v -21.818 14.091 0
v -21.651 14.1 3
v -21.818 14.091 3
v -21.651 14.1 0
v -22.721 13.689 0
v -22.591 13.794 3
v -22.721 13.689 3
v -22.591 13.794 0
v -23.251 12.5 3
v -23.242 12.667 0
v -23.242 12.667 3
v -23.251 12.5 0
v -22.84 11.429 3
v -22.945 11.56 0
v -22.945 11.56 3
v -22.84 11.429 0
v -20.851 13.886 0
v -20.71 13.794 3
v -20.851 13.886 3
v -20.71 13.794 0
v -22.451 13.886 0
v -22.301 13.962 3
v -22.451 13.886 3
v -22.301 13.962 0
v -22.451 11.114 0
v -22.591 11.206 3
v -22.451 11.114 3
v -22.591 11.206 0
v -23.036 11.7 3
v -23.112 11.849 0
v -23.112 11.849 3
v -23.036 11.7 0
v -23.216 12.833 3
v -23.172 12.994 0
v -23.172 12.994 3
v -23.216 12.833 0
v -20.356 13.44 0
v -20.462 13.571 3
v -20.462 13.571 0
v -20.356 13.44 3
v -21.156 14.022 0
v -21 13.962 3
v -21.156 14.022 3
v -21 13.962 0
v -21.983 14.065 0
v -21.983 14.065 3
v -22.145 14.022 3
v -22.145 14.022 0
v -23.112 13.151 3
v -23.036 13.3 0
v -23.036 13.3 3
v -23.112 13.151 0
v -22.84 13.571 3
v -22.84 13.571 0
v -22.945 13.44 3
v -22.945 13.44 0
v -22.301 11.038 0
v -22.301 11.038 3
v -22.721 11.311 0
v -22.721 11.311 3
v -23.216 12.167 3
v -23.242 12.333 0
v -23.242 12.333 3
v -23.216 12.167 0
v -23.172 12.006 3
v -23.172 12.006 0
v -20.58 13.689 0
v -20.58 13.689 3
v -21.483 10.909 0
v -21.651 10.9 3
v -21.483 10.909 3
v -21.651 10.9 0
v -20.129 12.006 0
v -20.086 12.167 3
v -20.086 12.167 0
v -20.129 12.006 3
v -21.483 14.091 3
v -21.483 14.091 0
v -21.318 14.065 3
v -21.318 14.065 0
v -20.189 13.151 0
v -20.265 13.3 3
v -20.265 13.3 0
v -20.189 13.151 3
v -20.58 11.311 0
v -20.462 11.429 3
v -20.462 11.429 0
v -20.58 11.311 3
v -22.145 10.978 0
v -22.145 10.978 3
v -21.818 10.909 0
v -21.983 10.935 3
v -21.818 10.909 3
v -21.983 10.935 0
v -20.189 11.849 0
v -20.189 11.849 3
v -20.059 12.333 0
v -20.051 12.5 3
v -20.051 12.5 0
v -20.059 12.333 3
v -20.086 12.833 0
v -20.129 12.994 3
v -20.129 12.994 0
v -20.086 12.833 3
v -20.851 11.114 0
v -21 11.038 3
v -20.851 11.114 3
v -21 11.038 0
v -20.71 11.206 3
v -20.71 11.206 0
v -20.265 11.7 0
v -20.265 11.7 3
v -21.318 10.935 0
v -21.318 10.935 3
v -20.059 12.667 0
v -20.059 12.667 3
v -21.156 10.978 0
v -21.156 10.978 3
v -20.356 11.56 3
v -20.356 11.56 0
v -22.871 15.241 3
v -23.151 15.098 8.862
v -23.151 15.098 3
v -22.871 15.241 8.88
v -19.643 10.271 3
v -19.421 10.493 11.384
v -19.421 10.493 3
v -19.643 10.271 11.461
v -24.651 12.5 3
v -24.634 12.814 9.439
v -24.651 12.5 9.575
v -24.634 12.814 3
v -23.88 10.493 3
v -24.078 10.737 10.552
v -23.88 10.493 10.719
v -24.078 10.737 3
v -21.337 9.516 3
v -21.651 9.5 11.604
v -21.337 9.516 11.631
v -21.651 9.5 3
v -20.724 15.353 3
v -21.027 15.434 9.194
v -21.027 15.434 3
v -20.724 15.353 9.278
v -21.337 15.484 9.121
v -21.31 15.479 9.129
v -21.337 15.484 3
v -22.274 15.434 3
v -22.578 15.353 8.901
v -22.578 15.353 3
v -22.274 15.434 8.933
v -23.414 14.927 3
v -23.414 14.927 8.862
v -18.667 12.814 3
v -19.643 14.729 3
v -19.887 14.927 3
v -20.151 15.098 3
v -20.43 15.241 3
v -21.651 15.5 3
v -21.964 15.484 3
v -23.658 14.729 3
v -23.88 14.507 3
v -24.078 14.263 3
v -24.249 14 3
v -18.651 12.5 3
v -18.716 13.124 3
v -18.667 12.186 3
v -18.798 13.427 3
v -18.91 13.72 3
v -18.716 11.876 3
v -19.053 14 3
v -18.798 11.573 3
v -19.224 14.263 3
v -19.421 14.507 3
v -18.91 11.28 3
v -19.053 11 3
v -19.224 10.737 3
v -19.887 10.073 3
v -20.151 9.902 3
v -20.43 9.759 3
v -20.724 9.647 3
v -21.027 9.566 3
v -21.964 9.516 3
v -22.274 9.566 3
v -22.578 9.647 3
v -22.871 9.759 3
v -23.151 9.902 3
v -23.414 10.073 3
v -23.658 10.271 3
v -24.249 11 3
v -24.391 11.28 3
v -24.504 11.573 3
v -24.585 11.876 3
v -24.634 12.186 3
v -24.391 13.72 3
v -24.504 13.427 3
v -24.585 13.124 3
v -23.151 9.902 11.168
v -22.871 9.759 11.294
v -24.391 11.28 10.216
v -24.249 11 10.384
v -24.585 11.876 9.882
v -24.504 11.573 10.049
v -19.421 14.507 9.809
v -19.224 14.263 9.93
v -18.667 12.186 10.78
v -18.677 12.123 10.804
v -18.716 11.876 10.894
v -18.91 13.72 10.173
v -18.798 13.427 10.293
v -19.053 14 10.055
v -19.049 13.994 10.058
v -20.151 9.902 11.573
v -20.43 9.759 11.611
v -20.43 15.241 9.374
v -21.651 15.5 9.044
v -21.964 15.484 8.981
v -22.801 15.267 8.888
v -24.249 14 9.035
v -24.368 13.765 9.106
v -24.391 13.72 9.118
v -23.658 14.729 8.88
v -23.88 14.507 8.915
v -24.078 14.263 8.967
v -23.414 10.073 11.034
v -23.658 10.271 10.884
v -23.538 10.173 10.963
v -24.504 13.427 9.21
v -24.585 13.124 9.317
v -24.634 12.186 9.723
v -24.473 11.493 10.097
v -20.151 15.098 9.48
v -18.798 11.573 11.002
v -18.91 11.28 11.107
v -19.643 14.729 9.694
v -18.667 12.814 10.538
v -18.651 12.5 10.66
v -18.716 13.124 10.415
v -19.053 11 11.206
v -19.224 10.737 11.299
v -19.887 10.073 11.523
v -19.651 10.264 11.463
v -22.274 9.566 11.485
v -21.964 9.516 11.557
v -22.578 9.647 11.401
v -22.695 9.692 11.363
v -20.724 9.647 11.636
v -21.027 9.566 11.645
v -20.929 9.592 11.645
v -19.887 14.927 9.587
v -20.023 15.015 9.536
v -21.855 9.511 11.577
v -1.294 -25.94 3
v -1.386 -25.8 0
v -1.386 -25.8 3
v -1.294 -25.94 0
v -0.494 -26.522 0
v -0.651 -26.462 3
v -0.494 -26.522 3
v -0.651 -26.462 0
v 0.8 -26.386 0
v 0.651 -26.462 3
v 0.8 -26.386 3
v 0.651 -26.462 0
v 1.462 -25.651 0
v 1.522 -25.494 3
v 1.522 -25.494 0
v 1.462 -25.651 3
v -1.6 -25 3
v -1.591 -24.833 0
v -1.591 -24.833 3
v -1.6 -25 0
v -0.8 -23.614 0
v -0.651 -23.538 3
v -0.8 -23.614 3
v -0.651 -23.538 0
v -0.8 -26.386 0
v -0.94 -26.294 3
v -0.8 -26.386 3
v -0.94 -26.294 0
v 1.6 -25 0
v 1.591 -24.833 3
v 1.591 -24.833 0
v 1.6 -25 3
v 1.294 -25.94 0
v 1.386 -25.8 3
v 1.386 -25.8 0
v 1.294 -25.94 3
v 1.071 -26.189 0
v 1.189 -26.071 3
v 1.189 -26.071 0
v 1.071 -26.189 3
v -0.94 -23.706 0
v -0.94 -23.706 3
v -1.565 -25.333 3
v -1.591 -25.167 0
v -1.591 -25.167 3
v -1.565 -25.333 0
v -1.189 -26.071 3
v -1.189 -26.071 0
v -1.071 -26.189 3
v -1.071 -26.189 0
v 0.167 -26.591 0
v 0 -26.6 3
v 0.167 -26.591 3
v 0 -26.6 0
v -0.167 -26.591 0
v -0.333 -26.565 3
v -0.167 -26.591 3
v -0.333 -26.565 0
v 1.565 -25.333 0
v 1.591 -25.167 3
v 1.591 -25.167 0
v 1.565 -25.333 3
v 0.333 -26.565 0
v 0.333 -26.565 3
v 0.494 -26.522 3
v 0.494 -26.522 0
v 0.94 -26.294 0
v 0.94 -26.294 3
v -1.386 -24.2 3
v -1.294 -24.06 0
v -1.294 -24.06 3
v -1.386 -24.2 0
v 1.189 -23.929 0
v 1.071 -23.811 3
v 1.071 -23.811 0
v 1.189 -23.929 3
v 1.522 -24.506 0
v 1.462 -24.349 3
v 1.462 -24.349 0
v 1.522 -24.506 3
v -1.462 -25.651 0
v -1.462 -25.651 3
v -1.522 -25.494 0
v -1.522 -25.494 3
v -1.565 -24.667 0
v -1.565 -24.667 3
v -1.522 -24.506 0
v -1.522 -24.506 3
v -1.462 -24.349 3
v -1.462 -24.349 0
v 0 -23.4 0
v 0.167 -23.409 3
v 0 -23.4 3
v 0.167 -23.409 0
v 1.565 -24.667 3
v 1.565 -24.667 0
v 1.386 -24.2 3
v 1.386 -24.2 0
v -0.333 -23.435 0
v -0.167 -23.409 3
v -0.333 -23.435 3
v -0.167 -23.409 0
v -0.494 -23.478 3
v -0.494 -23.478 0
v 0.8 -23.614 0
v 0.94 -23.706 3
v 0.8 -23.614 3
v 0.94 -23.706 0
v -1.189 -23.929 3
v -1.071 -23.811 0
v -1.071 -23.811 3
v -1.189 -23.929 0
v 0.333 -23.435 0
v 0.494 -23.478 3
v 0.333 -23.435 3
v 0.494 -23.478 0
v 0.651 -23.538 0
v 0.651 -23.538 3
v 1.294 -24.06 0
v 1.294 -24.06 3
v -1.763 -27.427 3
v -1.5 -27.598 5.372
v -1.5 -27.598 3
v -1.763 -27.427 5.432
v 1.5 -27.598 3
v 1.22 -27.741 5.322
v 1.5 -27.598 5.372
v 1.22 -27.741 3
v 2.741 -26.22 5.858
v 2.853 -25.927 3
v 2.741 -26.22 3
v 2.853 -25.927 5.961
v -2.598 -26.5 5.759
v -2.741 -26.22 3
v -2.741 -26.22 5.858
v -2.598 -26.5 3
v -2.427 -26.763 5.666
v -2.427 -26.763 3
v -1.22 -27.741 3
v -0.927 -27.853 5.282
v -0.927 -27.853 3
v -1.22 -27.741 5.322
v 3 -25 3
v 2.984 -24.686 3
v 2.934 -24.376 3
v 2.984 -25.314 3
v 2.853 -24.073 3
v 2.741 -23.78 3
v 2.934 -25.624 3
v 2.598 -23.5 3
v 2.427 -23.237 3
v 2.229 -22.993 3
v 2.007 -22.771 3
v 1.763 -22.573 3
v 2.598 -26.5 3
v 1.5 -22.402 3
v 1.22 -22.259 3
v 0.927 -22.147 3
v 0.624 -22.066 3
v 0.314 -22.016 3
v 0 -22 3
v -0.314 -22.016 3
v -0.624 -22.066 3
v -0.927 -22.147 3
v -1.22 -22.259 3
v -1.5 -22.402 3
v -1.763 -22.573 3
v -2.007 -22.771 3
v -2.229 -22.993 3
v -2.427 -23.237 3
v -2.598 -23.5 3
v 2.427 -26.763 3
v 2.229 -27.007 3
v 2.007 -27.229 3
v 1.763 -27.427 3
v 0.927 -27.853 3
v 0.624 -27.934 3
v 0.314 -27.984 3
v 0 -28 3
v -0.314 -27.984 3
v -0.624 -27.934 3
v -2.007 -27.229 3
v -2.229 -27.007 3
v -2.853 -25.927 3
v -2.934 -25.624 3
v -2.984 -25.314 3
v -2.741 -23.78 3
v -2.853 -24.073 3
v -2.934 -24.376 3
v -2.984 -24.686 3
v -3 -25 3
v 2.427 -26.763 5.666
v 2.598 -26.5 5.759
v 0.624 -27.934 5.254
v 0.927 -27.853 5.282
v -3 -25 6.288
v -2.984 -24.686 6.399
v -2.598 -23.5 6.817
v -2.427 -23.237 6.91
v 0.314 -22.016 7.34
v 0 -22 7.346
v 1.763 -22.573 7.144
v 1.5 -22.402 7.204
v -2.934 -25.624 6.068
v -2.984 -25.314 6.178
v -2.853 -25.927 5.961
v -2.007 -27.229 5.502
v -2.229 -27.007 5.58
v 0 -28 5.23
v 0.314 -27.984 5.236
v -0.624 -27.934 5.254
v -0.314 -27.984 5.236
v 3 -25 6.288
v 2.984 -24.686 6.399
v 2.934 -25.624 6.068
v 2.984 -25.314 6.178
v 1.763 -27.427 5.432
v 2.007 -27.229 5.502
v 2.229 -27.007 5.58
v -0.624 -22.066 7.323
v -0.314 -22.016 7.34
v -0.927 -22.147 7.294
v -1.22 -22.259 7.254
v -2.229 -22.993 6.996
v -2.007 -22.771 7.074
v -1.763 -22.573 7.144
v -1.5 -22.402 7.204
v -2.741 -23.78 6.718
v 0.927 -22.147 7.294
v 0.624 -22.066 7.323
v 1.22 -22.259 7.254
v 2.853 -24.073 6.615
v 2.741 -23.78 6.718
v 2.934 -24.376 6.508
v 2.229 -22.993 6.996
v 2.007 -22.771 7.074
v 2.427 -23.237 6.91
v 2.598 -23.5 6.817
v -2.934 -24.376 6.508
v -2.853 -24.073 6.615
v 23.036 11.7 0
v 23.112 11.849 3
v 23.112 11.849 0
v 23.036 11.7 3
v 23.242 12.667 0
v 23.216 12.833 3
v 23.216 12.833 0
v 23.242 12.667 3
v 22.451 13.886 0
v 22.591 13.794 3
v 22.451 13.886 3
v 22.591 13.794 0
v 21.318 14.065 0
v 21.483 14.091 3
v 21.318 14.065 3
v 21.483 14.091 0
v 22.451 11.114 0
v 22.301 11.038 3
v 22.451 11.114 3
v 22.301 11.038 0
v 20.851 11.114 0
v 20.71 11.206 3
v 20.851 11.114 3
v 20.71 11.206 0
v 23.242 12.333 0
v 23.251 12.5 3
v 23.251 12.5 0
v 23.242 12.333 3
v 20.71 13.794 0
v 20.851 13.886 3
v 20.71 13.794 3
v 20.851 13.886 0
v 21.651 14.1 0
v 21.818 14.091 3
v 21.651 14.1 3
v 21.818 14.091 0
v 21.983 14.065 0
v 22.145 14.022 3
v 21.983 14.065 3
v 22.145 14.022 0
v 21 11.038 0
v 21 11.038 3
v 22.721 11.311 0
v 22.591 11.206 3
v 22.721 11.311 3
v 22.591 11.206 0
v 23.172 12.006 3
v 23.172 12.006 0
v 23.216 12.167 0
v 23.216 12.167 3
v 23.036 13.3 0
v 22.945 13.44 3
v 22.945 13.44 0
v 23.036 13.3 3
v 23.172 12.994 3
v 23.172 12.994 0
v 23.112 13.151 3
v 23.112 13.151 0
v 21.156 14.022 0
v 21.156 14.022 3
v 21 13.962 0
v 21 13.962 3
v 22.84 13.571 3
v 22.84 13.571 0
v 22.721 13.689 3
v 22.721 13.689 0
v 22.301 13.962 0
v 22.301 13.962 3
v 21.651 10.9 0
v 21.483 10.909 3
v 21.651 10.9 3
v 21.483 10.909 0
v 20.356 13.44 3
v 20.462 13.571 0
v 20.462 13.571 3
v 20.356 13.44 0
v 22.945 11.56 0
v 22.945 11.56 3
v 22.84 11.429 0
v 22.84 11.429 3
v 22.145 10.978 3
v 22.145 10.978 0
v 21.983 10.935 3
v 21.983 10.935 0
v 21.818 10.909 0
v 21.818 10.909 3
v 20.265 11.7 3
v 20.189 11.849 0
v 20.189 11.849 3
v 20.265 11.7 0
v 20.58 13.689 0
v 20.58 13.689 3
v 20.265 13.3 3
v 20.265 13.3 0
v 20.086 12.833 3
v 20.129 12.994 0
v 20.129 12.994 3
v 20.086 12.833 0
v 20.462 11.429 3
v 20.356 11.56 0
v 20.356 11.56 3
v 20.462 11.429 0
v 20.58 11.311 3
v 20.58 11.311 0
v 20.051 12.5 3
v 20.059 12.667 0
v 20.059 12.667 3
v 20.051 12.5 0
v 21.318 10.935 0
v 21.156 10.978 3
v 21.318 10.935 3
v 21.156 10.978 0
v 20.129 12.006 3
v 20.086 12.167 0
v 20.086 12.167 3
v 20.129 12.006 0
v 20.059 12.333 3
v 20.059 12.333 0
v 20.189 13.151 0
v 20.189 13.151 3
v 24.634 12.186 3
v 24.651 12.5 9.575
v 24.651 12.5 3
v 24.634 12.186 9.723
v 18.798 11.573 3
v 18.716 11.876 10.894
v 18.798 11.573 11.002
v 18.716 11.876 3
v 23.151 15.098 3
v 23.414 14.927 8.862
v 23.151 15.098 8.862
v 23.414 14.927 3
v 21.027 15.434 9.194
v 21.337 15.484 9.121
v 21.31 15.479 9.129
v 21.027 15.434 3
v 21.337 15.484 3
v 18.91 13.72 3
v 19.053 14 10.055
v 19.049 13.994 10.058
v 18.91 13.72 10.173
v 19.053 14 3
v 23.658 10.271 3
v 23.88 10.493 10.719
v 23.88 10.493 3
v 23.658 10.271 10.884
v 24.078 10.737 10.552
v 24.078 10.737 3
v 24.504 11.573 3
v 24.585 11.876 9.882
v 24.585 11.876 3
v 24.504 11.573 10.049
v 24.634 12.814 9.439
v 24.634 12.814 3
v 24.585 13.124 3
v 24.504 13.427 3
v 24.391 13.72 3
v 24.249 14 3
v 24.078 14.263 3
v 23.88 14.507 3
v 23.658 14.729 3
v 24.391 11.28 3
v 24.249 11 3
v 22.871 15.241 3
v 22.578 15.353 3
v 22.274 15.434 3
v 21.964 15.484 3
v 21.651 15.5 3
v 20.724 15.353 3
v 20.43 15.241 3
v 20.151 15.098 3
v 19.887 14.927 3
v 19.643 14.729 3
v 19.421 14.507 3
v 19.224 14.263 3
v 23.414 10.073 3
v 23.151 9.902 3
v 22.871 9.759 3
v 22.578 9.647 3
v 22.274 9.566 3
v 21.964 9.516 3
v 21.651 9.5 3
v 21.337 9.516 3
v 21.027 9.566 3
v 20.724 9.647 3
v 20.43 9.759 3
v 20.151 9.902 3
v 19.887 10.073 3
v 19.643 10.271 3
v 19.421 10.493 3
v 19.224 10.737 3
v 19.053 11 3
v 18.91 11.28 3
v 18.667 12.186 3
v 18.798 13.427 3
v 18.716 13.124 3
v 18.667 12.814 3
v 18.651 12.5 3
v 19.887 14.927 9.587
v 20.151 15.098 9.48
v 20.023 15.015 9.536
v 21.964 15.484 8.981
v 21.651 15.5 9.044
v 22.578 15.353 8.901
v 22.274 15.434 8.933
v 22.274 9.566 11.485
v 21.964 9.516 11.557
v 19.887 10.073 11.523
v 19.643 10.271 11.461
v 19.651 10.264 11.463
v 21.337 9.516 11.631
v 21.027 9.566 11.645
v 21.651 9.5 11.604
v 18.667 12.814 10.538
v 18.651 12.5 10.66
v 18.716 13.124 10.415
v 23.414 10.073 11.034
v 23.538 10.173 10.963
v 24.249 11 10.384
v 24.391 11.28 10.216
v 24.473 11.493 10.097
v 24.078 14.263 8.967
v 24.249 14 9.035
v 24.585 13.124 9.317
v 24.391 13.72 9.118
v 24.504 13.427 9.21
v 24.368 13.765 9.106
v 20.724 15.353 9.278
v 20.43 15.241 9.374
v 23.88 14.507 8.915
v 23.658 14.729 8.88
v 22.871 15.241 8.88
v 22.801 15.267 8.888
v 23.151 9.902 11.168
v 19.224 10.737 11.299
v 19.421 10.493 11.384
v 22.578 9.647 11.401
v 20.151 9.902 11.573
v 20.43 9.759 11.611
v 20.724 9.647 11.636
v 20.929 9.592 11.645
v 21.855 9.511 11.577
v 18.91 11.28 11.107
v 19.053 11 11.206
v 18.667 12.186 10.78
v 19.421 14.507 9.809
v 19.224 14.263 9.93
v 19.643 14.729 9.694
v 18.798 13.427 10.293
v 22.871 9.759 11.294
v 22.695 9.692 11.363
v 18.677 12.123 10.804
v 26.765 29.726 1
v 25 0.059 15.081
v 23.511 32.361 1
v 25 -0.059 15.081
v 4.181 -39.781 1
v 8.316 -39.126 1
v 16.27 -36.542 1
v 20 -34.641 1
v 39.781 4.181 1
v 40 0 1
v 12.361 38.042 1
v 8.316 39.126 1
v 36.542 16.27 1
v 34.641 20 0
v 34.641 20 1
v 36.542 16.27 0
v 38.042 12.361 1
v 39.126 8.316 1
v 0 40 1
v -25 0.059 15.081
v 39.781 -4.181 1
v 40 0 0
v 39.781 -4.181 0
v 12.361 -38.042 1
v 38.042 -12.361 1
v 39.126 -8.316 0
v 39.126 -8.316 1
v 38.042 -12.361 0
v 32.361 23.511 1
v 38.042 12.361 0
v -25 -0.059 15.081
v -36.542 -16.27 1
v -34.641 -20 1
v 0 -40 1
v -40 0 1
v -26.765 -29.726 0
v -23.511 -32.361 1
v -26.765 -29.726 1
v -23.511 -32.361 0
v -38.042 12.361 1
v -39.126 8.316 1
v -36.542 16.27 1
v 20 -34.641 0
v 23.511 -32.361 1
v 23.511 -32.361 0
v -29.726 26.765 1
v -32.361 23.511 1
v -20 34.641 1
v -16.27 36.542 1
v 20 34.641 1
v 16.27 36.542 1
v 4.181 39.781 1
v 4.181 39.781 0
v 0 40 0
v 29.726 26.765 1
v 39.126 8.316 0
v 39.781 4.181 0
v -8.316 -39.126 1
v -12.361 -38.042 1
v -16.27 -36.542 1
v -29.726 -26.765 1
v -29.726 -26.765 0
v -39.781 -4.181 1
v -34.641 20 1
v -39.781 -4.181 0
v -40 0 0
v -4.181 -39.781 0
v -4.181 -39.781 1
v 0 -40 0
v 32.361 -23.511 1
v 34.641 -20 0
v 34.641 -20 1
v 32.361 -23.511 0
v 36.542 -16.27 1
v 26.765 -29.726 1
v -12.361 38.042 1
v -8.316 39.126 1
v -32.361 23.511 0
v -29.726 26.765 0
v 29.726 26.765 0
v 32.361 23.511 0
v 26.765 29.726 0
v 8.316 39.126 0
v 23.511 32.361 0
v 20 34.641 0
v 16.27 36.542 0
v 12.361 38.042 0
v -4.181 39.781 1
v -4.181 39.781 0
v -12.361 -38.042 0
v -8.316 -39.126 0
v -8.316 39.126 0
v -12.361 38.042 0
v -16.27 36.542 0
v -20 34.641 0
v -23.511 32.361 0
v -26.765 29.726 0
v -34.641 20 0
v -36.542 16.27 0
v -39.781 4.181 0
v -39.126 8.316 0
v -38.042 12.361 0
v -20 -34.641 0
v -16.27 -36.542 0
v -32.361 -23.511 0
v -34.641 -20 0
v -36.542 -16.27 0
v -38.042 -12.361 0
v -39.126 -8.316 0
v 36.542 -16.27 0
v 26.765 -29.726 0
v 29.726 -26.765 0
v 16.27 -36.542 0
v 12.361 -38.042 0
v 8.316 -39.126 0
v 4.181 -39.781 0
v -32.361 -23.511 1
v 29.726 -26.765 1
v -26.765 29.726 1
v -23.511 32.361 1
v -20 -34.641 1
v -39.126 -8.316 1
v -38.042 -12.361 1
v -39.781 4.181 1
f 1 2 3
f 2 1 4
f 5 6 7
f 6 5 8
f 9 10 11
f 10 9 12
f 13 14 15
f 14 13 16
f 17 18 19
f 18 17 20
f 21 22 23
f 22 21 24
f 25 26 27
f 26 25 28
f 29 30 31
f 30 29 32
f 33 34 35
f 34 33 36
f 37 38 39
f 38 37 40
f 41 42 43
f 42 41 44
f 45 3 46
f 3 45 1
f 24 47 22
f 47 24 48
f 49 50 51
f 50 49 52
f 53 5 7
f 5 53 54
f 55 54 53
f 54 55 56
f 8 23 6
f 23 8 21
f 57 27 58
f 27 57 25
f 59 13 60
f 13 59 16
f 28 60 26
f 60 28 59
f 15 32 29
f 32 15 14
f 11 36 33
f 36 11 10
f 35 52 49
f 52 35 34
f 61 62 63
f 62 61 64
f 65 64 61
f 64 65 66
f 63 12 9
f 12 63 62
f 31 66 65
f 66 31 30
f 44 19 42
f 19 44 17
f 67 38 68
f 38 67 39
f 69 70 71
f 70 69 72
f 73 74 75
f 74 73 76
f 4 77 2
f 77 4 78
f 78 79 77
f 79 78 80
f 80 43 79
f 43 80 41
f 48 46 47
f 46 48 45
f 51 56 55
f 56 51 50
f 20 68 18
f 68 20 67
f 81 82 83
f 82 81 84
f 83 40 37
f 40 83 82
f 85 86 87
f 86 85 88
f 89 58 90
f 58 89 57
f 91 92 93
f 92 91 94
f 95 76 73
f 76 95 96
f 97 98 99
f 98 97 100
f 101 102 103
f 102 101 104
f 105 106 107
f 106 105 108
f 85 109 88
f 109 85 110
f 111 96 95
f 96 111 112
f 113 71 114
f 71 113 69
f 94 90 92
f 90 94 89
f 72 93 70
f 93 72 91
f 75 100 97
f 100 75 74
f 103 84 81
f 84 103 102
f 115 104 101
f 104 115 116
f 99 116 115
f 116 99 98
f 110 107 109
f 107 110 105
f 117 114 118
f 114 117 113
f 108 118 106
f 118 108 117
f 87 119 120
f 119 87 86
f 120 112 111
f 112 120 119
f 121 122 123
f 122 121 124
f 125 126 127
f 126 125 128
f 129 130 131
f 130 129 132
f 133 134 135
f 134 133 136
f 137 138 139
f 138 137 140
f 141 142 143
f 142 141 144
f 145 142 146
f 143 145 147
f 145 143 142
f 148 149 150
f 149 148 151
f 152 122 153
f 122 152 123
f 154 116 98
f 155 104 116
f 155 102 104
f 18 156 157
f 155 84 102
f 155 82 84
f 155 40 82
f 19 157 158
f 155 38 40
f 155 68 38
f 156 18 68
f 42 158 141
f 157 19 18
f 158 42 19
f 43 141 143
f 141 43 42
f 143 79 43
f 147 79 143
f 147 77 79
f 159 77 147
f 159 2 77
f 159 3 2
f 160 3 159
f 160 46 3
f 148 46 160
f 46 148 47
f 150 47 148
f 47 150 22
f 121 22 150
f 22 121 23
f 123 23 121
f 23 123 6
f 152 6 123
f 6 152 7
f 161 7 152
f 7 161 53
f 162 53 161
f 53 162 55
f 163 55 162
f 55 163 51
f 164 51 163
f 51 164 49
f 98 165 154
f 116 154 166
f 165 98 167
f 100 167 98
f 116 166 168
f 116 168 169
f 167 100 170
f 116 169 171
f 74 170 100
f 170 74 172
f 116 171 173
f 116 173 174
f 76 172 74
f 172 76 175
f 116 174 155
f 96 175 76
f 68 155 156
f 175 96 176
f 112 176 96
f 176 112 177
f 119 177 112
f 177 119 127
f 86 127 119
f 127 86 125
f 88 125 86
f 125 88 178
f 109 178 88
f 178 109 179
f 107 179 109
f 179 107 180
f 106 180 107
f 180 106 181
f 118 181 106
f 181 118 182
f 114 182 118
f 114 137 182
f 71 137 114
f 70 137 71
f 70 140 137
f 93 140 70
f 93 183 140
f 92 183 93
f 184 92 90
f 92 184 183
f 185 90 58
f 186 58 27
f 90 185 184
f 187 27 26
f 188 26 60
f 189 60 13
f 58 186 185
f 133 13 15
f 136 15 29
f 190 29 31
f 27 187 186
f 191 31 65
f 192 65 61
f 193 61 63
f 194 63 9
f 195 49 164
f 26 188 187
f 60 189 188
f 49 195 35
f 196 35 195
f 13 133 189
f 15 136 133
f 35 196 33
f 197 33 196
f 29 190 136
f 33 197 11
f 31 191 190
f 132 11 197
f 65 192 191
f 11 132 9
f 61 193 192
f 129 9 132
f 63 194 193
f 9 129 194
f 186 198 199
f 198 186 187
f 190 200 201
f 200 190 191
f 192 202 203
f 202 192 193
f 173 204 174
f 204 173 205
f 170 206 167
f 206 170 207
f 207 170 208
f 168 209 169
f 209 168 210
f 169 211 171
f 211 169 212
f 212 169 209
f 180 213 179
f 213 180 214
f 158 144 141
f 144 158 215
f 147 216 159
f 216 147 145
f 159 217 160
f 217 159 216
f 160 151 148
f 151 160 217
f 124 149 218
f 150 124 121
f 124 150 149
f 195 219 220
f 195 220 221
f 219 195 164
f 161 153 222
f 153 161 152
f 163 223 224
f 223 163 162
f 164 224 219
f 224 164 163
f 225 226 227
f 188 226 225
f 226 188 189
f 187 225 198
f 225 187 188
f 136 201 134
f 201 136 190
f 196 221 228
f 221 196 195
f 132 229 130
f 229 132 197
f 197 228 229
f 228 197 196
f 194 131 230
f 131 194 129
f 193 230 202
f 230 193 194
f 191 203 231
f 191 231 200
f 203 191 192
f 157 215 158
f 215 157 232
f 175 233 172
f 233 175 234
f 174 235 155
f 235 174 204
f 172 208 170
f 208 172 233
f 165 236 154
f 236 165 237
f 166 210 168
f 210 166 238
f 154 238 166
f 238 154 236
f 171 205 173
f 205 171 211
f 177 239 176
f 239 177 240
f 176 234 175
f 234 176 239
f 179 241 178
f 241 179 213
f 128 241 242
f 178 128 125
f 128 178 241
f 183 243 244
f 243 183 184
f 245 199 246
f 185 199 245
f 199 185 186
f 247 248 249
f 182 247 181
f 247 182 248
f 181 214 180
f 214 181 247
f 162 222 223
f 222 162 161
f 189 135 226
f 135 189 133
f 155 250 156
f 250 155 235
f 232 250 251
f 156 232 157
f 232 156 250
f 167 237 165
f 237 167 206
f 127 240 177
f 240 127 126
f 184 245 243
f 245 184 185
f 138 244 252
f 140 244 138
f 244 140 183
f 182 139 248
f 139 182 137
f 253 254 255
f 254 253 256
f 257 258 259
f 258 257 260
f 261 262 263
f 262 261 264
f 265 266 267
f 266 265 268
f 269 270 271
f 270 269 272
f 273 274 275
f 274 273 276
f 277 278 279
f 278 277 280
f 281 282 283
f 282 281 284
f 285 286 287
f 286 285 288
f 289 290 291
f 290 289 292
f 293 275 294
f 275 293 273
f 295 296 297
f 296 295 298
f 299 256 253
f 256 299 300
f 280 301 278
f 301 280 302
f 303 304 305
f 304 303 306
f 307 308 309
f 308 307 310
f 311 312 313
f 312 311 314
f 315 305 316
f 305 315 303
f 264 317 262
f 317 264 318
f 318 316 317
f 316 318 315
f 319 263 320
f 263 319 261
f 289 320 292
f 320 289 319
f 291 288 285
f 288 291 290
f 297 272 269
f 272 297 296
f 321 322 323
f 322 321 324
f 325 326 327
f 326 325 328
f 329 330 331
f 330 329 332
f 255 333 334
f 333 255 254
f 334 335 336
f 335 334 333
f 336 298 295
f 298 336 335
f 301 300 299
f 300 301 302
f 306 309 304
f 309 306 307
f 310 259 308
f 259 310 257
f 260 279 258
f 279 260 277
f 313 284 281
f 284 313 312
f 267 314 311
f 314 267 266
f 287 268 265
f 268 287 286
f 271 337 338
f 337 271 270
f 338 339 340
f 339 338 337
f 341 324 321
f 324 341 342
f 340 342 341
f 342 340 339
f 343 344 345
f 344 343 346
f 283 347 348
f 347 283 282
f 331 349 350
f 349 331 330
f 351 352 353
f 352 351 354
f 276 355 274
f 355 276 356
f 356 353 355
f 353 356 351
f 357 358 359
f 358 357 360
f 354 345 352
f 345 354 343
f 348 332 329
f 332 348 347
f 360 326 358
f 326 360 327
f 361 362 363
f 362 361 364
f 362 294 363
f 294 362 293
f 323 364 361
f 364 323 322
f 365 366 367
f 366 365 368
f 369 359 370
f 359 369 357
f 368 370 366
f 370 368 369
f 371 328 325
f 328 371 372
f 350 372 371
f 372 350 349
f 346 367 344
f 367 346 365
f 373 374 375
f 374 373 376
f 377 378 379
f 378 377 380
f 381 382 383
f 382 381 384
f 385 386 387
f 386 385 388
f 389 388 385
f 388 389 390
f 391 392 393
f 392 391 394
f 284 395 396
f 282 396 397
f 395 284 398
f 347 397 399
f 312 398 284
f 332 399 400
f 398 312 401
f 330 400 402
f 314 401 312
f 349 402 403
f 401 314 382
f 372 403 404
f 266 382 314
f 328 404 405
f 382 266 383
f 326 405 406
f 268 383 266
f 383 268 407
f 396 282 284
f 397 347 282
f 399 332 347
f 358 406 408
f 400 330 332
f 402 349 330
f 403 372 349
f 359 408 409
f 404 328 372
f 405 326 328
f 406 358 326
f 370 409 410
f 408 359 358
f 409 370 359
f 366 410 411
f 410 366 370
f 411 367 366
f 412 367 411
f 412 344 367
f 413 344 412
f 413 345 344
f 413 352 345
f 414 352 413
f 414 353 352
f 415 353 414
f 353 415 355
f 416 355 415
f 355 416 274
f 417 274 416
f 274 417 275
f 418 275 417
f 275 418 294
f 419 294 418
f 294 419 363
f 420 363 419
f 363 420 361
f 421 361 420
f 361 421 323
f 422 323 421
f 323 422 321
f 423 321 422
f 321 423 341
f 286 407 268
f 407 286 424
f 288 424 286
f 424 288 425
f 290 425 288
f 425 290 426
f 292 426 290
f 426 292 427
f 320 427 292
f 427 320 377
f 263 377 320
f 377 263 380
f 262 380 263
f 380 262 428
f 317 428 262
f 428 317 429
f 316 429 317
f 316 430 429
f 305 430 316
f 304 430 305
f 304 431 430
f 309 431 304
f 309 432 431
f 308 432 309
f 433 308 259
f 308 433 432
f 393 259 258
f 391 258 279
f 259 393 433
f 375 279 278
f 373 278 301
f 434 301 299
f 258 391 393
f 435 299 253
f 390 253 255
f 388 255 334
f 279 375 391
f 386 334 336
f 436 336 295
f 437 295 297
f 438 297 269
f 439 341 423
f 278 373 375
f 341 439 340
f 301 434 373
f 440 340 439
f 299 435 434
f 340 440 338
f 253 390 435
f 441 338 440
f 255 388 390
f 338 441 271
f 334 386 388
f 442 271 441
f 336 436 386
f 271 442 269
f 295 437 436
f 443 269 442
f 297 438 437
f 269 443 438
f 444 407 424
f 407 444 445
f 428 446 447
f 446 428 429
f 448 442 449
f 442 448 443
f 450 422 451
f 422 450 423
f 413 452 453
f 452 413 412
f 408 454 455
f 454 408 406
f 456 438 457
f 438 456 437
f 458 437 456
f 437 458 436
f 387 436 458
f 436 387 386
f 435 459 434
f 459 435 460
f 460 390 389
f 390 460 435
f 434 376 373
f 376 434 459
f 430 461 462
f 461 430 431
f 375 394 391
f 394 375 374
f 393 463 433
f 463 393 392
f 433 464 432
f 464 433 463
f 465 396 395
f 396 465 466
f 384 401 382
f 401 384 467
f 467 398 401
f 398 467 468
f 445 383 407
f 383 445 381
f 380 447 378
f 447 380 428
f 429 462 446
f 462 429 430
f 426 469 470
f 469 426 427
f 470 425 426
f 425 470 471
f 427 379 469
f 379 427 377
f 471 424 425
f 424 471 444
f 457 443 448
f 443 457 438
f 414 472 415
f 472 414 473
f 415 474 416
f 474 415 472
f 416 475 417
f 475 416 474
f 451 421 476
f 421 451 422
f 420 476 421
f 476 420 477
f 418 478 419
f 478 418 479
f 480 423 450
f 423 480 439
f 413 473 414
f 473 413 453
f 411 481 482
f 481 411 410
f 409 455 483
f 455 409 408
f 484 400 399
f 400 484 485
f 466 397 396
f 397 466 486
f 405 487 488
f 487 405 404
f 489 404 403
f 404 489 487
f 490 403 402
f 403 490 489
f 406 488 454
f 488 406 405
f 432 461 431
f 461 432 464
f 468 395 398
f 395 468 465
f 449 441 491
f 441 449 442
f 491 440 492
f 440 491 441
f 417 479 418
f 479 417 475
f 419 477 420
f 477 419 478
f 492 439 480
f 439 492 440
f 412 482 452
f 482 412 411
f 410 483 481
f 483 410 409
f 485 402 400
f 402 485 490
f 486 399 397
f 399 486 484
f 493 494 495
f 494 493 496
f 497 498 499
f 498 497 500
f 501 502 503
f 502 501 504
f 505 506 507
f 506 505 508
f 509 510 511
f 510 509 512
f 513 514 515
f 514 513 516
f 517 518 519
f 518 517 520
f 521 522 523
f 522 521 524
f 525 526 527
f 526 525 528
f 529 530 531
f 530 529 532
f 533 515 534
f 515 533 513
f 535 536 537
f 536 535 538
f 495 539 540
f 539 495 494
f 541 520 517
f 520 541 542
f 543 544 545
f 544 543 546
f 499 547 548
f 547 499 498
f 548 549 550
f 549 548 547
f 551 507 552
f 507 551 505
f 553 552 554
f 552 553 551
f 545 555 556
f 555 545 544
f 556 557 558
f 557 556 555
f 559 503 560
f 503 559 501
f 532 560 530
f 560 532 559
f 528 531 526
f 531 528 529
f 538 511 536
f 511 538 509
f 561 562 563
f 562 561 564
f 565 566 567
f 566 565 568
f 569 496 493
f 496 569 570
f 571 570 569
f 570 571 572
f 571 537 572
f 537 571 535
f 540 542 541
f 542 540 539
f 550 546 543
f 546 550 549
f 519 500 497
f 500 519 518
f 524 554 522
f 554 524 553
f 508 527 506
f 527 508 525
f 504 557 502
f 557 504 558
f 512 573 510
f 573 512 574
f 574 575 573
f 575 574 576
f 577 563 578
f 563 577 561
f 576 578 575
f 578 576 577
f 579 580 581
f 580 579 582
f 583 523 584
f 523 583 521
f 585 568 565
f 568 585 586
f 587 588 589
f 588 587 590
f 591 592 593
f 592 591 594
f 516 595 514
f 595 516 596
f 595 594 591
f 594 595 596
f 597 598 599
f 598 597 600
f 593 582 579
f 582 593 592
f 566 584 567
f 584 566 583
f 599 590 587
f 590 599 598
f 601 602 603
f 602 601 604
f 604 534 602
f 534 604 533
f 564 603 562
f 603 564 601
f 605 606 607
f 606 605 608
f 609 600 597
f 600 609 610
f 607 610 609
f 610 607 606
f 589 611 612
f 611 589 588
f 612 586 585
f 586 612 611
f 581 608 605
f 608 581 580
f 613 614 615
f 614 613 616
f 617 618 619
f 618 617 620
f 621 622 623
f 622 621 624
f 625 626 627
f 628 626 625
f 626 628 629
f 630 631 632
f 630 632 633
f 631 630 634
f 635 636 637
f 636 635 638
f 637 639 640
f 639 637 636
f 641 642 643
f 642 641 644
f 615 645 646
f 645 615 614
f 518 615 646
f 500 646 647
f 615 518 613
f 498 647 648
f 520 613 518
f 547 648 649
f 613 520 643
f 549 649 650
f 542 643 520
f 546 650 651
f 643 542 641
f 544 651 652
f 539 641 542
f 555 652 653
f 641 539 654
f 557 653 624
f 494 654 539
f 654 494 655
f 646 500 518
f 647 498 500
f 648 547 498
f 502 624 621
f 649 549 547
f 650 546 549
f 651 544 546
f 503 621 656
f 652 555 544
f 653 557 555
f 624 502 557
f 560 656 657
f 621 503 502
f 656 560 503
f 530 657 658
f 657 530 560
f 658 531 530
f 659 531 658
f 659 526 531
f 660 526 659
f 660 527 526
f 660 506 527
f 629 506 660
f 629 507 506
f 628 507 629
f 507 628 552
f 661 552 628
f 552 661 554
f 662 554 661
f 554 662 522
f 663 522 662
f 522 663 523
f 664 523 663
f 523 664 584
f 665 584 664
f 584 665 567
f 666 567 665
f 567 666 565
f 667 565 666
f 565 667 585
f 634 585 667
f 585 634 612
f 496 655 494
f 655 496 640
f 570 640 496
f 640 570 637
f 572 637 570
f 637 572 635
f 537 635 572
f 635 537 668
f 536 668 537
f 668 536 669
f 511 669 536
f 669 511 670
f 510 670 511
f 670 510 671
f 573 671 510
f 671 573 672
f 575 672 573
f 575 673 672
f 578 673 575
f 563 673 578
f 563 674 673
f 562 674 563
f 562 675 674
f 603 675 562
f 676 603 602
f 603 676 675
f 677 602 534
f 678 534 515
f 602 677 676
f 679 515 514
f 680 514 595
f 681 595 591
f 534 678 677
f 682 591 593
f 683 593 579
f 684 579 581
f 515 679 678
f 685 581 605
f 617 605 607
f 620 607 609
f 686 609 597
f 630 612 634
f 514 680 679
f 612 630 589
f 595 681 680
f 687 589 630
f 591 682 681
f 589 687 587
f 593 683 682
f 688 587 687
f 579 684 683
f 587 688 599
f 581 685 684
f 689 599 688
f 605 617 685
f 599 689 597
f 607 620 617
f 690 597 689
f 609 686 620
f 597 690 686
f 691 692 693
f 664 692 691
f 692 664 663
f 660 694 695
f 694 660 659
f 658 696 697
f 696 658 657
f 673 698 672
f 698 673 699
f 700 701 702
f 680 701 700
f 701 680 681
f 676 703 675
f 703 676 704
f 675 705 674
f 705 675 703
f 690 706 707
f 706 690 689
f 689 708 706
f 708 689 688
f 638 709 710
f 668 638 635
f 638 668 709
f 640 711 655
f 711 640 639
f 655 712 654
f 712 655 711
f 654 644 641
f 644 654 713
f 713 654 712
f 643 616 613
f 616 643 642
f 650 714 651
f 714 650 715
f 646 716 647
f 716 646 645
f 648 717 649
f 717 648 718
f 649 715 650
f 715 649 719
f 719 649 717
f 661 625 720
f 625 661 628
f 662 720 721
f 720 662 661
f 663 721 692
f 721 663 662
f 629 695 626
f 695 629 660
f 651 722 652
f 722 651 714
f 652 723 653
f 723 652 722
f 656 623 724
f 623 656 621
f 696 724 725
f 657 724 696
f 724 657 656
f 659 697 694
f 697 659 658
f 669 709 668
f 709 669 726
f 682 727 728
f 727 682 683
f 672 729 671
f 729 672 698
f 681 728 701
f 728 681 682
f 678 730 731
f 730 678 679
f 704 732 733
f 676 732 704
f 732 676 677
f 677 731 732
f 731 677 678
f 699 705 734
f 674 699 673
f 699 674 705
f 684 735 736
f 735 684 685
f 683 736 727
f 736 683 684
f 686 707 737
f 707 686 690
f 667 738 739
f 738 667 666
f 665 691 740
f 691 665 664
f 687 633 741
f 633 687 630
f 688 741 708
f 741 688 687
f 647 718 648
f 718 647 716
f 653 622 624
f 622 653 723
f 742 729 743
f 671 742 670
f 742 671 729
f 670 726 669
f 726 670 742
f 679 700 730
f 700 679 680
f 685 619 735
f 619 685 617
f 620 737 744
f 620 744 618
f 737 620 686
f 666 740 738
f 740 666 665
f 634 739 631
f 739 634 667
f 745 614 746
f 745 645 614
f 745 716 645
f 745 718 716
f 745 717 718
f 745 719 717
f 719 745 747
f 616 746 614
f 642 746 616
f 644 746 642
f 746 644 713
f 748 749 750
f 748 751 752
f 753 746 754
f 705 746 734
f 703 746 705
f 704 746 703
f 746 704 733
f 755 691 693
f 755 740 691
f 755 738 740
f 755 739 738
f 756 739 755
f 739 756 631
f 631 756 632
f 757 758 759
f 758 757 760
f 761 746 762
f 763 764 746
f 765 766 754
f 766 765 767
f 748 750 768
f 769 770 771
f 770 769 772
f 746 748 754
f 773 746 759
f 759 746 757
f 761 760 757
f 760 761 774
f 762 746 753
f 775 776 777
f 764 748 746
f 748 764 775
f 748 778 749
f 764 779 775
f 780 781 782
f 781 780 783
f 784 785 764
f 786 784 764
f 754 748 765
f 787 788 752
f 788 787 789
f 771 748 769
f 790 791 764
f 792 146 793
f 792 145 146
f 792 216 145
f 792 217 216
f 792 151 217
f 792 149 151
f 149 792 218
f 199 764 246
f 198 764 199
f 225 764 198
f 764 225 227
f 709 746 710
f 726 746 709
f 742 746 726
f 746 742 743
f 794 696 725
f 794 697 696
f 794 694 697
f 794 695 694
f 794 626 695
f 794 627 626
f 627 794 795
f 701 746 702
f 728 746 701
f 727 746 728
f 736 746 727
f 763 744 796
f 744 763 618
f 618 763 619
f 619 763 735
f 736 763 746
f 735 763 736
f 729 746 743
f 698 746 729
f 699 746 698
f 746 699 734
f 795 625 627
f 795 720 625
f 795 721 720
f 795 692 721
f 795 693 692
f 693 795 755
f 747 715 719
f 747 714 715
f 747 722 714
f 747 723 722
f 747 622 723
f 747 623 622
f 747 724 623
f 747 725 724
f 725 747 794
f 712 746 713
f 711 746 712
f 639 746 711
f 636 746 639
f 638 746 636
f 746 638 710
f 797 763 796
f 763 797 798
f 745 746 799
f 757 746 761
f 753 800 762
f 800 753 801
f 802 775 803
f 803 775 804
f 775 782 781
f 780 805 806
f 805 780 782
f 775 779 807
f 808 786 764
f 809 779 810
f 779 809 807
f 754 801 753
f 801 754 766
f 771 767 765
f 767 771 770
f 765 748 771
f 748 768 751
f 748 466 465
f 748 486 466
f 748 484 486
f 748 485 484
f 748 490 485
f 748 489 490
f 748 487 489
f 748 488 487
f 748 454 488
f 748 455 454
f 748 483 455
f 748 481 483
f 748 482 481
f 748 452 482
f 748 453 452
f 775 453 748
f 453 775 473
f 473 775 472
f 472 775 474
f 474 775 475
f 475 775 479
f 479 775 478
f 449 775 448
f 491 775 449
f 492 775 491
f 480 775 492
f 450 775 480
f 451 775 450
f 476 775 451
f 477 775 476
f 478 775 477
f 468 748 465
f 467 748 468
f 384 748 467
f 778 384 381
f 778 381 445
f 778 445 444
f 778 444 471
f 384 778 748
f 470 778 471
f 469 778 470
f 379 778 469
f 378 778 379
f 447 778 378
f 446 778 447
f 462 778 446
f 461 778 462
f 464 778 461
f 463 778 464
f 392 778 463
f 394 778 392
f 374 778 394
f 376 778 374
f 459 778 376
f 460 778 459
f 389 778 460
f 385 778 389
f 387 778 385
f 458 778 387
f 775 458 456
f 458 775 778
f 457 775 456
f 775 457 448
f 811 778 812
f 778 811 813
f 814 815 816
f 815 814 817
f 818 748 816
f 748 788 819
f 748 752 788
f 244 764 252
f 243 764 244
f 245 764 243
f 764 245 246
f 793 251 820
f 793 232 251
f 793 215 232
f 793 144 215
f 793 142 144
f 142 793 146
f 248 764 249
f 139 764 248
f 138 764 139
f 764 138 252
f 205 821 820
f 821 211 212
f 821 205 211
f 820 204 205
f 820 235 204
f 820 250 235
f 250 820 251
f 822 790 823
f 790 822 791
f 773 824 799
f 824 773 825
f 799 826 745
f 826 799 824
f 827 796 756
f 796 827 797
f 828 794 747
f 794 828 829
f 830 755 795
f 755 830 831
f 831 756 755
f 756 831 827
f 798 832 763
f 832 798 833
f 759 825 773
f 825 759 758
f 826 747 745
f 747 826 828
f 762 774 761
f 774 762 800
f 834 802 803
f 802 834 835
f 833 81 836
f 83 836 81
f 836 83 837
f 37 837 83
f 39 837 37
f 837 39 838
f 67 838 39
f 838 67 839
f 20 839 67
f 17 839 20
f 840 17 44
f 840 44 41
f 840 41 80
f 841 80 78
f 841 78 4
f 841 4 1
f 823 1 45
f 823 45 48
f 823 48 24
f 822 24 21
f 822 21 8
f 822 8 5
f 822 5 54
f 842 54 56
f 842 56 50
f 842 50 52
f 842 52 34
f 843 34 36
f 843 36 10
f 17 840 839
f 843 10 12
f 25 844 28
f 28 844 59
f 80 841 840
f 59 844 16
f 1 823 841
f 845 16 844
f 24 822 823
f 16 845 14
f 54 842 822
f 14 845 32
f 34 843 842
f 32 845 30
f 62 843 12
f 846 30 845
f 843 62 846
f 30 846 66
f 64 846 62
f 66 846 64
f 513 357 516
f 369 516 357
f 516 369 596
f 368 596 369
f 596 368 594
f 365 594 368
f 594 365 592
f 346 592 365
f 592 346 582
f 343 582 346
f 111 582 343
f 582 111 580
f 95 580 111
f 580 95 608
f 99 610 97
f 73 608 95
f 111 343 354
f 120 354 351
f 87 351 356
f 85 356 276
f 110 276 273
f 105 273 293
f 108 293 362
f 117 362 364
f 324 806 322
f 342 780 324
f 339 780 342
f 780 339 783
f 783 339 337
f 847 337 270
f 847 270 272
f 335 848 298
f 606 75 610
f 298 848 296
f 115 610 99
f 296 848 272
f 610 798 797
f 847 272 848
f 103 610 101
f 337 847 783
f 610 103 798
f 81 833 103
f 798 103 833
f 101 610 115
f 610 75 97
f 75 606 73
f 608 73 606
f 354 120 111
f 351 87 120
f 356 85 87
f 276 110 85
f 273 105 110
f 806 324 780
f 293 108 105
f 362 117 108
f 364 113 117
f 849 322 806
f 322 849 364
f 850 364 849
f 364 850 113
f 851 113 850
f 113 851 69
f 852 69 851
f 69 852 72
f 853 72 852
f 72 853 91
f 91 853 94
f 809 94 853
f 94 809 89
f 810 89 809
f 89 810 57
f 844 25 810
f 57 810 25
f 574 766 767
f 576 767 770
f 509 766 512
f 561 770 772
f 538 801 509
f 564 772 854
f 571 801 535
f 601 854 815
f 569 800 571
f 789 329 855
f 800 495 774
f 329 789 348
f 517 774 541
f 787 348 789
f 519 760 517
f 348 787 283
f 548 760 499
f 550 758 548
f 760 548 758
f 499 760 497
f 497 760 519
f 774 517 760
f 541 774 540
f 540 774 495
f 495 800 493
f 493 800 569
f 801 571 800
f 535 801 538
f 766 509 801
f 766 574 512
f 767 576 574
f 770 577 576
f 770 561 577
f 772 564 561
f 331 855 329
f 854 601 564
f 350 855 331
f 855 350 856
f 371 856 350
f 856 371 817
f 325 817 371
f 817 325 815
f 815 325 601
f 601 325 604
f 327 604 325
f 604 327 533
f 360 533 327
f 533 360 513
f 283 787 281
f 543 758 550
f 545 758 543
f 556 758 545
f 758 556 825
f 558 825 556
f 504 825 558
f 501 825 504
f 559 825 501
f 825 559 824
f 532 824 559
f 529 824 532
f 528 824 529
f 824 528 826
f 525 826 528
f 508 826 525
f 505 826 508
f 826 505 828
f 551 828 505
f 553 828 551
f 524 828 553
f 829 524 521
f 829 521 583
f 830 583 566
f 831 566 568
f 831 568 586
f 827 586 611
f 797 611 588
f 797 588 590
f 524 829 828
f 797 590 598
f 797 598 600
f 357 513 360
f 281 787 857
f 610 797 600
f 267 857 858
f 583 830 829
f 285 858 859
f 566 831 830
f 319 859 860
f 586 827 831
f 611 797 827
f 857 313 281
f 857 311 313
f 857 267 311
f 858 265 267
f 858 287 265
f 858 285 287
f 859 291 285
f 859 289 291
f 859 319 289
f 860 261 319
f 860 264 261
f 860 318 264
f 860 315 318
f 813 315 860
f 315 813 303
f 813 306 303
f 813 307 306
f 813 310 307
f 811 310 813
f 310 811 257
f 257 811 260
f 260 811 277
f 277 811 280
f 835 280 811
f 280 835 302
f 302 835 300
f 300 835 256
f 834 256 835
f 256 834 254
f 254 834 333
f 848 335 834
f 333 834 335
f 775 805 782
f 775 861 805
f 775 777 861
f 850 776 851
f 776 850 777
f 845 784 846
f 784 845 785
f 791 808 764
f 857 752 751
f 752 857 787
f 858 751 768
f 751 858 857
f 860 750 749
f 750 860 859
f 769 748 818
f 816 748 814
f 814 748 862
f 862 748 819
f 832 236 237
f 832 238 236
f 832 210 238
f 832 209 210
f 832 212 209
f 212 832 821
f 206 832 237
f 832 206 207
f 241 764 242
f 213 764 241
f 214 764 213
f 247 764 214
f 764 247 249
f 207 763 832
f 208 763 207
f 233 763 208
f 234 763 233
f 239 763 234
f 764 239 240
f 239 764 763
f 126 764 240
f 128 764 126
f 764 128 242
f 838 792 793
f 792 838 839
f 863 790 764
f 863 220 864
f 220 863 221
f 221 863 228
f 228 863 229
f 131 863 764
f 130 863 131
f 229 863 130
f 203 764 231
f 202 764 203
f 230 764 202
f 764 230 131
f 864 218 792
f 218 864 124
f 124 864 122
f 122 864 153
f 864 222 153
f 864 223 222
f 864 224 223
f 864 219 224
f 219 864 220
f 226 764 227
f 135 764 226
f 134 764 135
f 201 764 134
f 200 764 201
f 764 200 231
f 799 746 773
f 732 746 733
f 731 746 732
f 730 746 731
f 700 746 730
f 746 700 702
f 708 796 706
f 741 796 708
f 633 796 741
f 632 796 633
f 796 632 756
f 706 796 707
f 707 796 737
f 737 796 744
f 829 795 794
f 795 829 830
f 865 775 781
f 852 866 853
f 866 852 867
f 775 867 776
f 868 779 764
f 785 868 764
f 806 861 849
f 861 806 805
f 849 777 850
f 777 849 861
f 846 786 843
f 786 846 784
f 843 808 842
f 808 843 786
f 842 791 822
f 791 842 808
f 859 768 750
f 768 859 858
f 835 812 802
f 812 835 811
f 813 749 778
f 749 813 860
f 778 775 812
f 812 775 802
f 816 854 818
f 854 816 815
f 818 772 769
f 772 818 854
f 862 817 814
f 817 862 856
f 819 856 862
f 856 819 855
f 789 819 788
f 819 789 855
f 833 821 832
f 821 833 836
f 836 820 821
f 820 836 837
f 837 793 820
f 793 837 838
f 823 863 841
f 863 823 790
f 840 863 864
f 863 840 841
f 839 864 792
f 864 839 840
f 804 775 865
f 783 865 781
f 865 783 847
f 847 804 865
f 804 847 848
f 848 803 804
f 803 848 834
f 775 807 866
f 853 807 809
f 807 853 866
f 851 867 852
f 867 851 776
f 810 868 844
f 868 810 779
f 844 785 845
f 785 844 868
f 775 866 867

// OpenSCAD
difference() {
    hull() {
    cylinder(r=80/2,h=1,$fn=60);
    translate([-25,0,15]) rotate([0,90,0])cylinder(r=0.1,h=50);
    }
    for(j=[60,180,300]) {
        rotate([0,0,j]) {
            translate([0,25,-1]) {
                #cylinder(r=3.2/2,h=100,$fn=60);
            }
            translate([0,25,3]) {
                #cylinder(r=6/2,h=100,$fn=60);
            }
        }
    }
}
